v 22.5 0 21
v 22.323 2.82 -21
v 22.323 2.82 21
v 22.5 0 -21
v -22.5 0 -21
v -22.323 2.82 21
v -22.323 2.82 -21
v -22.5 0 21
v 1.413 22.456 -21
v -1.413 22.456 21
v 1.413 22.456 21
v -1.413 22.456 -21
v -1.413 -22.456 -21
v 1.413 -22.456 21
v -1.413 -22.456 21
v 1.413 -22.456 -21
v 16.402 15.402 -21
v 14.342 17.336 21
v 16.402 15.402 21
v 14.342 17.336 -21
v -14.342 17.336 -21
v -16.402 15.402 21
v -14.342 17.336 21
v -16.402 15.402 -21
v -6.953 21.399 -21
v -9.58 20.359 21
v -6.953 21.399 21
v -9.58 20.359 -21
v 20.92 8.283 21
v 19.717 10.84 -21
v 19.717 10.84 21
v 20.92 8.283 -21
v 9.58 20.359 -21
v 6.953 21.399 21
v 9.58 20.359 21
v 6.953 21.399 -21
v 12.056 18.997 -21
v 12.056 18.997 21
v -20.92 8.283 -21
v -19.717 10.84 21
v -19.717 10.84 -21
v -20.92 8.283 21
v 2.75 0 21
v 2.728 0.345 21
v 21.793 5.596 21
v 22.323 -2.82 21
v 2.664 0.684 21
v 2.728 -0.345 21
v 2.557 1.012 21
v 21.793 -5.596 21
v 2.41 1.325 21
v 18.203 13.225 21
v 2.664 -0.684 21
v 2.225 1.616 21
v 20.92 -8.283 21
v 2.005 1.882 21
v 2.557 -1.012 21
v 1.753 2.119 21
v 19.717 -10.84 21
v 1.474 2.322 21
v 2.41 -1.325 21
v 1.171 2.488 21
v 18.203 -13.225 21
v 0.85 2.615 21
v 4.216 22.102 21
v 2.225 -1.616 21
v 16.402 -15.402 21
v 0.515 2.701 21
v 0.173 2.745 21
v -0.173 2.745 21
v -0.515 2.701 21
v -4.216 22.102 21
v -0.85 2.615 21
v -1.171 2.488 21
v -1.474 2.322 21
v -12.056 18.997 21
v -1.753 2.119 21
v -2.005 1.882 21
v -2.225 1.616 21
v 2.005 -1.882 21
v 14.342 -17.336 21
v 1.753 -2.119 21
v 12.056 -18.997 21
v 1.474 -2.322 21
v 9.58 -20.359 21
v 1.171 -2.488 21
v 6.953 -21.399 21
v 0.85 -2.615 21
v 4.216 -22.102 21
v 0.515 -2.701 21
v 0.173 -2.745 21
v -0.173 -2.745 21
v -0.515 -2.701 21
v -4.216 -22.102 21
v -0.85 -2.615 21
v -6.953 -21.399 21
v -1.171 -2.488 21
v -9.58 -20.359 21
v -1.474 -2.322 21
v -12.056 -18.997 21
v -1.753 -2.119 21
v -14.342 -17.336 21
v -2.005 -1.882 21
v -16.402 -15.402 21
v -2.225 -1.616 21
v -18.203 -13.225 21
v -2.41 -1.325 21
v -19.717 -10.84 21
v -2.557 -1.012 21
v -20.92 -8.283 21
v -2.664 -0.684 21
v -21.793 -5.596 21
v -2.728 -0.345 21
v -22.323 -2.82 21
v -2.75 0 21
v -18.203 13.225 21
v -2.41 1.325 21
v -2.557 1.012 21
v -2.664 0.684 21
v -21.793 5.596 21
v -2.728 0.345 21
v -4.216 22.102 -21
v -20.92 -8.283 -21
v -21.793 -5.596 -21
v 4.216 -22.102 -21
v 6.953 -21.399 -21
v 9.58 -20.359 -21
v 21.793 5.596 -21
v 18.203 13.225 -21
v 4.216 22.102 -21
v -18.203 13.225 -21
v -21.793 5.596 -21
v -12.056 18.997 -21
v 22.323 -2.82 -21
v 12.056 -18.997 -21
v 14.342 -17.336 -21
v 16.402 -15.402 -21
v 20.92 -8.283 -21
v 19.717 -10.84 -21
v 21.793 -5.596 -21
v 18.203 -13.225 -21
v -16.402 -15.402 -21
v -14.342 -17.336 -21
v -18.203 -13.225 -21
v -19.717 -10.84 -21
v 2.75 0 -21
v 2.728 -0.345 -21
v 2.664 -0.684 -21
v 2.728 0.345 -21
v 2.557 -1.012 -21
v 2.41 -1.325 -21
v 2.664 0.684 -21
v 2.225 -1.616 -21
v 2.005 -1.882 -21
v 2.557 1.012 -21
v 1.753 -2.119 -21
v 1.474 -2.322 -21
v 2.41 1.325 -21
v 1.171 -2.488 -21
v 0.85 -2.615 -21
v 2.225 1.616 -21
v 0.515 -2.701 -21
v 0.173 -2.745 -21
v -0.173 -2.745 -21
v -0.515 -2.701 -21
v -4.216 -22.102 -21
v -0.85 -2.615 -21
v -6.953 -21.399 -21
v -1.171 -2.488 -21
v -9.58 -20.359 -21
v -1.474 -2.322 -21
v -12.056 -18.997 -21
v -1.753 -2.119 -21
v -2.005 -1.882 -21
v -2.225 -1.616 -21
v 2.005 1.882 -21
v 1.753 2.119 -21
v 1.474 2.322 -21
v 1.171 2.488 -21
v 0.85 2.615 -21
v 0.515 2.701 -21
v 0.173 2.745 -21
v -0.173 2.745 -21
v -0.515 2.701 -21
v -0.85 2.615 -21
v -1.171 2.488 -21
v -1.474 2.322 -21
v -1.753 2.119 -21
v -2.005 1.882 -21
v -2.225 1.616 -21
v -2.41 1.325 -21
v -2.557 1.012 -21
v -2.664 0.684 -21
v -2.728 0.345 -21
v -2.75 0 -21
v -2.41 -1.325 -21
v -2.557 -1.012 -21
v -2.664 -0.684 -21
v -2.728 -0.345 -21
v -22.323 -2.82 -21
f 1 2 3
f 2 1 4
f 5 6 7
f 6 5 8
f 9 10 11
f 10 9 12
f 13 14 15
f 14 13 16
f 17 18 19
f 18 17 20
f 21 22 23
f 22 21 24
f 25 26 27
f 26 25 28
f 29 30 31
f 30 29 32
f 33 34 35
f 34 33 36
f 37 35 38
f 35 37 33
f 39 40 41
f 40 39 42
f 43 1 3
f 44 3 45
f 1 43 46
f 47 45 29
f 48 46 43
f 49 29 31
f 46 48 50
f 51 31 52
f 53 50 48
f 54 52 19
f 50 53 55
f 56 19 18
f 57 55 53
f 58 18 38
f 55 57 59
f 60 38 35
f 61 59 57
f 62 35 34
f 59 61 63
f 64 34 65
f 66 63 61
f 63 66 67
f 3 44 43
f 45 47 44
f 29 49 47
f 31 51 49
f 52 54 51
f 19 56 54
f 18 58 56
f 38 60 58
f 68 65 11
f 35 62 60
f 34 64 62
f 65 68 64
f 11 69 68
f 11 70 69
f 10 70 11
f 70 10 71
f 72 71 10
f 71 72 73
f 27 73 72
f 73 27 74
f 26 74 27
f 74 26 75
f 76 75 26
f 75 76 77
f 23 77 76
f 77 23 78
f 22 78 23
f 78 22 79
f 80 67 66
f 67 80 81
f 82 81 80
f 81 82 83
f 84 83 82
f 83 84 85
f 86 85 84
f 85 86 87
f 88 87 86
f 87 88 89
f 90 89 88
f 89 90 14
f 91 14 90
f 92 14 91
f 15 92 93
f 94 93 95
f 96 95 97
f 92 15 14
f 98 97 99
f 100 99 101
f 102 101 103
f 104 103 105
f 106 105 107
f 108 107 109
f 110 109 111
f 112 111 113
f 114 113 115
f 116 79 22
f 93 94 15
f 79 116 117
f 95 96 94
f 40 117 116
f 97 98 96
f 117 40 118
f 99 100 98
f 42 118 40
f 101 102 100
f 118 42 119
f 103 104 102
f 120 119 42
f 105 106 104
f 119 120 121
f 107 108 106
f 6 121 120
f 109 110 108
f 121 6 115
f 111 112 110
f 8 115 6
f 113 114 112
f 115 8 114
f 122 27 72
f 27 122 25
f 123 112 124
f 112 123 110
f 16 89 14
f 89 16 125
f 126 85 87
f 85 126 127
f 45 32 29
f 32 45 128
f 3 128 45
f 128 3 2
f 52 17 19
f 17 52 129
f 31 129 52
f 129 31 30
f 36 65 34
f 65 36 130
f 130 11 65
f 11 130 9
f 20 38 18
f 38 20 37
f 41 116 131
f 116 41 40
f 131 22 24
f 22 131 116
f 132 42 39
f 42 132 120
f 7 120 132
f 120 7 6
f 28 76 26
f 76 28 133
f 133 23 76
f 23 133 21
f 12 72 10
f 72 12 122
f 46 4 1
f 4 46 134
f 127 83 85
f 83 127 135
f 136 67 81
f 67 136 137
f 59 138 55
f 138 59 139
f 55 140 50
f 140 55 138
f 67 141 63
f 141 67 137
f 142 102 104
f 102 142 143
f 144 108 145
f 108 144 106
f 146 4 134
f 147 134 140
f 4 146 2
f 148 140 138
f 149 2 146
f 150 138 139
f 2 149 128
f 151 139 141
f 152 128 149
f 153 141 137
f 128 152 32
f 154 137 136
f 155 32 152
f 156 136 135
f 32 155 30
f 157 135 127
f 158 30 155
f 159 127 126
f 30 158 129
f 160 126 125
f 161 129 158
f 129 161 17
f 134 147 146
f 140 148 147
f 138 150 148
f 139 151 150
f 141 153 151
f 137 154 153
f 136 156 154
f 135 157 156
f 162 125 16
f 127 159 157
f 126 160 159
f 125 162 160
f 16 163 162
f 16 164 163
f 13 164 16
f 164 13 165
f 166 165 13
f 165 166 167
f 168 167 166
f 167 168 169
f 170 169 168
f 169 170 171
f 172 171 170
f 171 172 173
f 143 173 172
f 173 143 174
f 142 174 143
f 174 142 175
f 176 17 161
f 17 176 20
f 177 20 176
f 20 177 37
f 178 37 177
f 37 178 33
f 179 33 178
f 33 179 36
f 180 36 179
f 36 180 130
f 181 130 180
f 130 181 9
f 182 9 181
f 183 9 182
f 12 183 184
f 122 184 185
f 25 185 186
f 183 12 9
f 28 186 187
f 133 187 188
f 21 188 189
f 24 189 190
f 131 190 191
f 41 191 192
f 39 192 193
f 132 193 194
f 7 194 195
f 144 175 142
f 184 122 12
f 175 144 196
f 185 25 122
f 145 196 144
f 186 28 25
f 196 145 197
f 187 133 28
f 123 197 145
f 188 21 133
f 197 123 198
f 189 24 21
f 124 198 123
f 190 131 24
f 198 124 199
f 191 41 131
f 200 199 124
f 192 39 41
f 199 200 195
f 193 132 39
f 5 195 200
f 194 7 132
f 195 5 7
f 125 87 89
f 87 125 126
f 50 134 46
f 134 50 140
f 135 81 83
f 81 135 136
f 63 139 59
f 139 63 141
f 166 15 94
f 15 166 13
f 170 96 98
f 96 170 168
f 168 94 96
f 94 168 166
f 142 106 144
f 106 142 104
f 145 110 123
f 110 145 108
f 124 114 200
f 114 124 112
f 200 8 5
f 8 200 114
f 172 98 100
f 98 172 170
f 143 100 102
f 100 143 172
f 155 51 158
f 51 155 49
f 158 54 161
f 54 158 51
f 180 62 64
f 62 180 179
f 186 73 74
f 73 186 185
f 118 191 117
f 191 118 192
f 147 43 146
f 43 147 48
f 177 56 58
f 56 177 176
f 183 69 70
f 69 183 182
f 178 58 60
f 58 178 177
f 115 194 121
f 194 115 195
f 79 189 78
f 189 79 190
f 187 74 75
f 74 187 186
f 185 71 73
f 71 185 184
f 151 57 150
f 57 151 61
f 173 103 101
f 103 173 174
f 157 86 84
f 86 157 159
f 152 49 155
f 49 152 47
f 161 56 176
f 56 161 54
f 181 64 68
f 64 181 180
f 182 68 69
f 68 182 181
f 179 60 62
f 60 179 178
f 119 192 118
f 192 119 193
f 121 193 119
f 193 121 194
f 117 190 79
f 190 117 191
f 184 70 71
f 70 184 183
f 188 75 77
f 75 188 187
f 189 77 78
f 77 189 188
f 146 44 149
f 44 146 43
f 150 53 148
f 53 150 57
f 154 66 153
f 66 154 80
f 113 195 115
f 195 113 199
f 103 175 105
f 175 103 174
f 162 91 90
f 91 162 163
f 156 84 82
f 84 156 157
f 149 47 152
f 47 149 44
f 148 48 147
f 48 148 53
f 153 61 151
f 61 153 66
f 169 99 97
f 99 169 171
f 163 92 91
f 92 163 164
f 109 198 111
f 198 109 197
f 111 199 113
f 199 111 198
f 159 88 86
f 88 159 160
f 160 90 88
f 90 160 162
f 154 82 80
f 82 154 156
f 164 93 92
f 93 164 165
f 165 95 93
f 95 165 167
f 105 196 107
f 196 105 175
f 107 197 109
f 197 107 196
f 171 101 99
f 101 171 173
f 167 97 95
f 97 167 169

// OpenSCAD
$fn = 50;


difference() {
	union() {
		translate(v = [0, 0, -21.0000000000]) {
			cylinder(h = 42, r = 22.5000000000);
		}
	}
	union() {
		translate(v = [0, 0, -100.0000000000]) {
			cylinder(h = 200, r = 2.7500000000);
		}
	}
}
